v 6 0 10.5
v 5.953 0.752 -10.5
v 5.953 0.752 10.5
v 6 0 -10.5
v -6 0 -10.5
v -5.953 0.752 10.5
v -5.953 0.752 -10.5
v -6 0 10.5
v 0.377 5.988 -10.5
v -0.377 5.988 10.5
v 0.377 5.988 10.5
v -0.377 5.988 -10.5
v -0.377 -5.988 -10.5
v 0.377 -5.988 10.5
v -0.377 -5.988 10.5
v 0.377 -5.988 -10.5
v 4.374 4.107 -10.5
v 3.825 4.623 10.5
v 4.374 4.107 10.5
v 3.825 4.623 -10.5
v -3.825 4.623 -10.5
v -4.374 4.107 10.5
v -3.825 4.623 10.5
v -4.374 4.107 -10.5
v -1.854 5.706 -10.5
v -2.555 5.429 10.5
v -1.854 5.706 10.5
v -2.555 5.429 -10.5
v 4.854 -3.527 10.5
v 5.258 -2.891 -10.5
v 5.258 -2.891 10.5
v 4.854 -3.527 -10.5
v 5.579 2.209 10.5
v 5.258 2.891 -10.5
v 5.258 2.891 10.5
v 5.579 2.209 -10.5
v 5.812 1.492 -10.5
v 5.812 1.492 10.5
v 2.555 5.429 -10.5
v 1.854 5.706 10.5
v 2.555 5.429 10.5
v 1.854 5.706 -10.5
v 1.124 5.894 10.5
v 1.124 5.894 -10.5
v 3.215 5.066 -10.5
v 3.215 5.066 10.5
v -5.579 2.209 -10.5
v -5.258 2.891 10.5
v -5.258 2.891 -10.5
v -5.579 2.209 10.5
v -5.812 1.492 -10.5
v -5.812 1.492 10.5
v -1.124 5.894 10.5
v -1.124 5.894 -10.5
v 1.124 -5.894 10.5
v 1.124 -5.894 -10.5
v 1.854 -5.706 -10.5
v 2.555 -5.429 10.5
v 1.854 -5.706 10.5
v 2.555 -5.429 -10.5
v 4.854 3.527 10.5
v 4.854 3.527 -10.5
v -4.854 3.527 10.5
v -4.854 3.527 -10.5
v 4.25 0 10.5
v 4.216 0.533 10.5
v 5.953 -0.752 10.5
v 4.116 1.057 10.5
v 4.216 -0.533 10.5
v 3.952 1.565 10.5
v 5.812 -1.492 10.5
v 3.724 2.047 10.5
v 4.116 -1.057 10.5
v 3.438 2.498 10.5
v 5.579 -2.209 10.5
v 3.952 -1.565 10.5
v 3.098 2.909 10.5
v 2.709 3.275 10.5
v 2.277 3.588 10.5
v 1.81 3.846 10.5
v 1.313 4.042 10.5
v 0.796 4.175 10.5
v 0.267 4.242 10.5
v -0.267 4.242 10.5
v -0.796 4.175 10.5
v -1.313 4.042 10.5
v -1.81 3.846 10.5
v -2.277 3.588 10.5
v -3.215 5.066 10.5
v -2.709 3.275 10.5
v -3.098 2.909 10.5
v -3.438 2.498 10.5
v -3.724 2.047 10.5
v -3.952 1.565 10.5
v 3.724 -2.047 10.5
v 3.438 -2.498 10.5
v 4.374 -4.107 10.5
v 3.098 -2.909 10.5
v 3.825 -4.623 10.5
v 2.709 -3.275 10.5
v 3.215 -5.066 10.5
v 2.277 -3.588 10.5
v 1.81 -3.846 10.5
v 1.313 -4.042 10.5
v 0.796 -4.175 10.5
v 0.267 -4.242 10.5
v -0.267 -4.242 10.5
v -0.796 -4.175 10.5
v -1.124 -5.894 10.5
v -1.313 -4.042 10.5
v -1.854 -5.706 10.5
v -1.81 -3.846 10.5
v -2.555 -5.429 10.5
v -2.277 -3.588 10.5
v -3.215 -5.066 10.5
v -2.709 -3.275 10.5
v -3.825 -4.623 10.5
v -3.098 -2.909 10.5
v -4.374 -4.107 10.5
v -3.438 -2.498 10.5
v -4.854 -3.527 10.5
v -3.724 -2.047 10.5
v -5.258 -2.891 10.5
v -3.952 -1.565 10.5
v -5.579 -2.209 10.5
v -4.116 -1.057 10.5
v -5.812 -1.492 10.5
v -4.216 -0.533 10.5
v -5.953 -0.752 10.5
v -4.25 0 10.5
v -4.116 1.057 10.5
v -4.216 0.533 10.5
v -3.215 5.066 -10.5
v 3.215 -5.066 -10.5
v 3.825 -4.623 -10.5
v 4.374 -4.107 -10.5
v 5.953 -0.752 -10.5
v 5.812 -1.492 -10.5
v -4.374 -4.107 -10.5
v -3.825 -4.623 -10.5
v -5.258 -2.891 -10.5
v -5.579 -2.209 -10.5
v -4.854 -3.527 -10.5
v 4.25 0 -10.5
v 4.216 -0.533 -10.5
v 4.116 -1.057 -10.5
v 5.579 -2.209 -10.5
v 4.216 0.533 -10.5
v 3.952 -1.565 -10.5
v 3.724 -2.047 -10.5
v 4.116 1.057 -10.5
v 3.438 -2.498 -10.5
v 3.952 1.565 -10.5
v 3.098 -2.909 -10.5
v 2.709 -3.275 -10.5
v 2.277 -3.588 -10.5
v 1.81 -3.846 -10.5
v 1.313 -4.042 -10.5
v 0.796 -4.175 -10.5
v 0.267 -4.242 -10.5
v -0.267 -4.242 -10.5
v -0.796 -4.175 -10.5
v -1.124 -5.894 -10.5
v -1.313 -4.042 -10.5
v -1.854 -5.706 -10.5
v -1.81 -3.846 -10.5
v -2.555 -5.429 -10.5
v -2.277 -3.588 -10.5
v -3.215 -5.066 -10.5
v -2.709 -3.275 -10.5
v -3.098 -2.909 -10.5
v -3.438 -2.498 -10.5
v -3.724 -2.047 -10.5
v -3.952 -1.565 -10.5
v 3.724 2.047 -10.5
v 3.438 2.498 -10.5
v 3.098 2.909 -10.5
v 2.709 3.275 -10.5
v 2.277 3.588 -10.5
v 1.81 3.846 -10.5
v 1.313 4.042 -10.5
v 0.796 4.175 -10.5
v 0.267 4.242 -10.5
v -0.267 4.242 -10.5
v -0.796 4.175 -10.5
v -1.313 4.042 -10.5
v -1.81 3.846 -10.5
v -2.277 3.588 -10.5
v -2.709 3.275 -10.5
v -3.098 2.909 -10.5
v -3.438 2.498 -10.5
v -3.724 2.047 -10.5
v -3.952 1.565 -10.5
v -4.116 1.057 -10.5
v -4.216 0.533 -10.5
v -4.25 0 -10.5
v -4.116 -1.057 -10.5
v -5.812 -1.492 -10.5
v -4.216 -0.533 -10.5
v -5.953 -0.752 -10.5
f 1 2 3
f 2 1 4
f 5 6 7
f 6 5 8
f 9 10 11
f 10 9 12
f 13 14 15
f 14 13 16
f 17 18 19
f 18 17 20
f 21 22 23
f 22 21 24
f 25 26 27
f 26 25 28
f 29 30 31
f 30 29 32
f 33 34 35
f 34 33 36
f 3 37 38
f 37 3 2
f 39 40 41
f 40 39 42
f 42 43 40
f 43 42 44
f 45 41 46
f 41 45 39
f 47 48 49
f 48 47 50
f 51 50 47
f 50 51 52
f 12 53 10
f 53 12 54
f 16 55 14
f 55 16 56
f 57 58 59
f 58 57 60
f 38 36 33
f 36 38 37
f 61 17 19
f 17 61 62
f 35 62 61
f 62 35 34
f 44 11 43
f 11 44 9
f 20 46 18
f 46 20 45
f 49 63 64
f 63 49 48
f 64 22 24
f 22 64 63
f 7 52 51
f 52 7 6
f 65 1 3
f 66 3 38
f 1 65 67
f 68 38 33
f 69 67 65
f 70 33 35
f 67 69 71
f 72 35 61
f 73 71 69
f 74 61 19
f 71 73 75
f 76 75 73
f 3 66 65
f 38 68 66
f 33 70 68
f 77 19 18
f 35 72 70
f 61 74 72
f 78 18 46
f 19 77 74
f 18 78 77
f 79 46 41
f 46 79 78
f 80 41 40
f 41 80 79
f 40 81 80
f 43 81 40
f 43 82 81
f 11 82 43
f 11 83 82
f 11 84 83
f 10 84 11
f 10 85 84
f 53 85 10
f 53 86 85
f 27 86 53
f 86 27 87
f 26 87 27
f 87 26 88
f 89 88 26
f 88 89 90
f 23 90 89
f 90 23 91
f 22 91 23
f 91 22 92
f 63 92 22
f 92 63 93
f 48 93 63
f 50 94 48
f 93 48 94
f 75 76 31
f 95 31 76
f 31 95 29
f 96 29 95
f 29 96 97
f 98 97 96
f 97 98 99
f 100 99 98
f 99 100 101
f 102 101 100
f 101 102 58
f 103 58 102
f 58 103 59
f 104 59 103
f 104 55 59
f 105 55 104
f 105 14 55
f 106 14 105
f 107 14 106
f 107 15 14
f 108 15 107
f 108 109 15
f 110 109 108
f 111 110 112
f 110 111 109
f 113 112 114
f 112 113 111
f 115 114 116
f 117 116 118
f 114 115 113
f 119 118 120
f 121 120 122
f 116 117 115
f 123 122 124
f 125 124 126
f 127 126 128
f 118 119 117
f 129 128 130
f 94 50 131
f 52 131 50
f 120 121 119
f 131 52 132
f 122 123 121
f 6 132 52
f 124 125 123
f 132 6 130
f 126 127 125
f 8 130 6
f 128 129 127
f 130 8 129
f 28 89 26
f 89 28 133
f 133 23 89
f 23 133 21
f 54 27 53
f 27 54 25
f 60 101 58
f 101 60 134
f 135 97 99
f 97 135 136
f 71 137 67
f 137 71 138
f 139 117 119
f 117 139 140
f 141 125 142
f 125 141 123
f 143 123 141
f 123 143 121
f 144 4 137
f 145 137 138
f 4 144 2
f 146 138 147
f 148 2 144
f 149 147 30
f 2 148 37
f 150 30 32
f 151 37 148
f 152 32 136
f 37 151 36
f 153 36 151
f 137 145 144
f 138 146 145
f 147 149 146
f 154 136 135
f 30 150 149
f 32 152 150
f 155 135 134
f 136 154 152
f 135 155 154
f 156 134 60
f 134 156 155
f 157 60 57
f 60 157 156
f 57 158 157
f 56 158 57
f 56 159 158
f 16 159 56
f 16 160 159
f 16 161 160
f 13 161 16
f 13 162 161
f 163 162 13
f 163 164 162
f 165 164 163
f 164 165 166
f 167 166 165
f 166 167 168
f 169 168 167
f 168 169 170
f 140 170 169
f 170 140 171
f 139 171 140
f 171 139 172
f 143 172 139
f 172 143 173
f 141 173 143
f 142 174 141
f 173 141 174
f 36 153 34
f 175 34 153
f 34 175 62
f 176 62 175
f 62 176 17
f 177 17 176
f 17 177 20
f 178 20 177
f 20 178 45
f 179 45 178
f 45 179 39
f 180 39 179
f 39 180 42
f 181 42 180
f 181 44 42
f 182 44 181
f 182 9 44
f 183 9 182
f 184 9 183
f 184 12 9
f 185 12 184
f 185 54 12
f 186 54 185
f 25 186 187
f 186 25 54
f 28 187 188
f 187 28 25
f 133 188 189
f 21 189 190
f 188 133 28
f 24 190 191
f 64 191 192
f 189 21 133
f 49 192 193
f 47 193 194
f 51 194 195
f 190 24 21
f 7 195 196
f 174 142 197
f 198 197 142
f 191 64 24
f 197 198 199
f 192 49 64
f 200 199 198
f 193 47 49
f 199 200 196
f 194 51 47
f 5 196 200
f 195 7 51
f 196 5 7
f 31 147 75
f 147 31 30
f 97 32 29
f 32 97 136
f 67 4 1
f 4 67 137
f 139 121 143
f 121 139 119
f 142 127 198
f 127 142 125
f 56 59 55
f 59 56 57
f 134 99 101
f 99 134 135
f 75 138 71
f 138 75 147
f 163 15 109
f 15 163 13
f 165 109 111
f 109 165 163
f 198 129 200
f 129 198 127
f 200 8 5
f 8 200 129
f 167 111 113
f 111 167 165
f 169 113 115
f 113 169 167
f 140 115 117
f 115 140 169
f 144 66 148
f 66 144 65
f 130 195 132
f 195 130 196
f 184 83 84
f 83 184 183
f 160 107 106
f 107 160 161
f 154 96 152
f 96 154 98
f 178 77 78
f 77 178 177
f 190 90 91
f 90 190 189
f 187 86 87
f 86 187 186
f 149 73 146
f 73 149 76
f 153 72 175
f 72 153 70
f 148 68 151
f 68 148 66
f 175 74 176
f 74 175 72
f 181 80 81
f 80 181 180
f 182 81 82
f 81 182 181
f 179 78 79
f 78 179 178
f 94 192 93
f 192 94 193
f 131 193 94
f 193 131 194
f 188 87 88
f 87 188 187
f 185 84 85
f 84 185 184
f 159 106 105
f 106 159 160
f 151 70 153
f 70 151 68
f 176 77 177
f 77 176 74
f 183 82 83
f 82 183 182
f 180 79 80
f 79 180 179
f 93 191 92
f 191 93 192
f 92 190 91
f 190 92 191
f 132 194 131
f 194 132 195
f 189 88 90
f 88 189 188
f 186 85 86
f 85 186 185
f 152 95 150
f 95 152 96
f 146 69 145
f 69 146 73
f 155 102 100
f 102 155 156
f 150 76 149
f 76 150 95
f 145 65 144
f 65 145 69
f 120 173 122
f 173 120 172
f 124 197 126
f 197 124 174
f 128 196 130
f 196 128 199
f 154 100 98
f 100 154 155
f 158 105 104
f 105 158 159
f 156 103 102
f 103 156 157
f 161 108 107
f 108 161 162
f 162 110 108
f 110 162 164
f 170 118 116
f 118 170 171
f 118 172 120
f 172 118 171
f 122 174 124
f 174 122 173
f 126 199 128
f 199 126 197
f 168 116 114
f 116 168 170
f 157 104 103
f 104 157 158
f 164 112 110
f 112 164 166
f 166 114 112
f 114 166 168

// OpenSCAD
$fn = 50;


difference() {
	union() {
		translate(v = [0, 0, -10.5000000000]) {
			cylinder(h = 21, r = 6.0000000000);
		}
	}
	union() {
		translate(v = [0, 0, -100.0000000000]) {
			cylinder(h = 200, r = 4.2500000000);
		}
	}
}
